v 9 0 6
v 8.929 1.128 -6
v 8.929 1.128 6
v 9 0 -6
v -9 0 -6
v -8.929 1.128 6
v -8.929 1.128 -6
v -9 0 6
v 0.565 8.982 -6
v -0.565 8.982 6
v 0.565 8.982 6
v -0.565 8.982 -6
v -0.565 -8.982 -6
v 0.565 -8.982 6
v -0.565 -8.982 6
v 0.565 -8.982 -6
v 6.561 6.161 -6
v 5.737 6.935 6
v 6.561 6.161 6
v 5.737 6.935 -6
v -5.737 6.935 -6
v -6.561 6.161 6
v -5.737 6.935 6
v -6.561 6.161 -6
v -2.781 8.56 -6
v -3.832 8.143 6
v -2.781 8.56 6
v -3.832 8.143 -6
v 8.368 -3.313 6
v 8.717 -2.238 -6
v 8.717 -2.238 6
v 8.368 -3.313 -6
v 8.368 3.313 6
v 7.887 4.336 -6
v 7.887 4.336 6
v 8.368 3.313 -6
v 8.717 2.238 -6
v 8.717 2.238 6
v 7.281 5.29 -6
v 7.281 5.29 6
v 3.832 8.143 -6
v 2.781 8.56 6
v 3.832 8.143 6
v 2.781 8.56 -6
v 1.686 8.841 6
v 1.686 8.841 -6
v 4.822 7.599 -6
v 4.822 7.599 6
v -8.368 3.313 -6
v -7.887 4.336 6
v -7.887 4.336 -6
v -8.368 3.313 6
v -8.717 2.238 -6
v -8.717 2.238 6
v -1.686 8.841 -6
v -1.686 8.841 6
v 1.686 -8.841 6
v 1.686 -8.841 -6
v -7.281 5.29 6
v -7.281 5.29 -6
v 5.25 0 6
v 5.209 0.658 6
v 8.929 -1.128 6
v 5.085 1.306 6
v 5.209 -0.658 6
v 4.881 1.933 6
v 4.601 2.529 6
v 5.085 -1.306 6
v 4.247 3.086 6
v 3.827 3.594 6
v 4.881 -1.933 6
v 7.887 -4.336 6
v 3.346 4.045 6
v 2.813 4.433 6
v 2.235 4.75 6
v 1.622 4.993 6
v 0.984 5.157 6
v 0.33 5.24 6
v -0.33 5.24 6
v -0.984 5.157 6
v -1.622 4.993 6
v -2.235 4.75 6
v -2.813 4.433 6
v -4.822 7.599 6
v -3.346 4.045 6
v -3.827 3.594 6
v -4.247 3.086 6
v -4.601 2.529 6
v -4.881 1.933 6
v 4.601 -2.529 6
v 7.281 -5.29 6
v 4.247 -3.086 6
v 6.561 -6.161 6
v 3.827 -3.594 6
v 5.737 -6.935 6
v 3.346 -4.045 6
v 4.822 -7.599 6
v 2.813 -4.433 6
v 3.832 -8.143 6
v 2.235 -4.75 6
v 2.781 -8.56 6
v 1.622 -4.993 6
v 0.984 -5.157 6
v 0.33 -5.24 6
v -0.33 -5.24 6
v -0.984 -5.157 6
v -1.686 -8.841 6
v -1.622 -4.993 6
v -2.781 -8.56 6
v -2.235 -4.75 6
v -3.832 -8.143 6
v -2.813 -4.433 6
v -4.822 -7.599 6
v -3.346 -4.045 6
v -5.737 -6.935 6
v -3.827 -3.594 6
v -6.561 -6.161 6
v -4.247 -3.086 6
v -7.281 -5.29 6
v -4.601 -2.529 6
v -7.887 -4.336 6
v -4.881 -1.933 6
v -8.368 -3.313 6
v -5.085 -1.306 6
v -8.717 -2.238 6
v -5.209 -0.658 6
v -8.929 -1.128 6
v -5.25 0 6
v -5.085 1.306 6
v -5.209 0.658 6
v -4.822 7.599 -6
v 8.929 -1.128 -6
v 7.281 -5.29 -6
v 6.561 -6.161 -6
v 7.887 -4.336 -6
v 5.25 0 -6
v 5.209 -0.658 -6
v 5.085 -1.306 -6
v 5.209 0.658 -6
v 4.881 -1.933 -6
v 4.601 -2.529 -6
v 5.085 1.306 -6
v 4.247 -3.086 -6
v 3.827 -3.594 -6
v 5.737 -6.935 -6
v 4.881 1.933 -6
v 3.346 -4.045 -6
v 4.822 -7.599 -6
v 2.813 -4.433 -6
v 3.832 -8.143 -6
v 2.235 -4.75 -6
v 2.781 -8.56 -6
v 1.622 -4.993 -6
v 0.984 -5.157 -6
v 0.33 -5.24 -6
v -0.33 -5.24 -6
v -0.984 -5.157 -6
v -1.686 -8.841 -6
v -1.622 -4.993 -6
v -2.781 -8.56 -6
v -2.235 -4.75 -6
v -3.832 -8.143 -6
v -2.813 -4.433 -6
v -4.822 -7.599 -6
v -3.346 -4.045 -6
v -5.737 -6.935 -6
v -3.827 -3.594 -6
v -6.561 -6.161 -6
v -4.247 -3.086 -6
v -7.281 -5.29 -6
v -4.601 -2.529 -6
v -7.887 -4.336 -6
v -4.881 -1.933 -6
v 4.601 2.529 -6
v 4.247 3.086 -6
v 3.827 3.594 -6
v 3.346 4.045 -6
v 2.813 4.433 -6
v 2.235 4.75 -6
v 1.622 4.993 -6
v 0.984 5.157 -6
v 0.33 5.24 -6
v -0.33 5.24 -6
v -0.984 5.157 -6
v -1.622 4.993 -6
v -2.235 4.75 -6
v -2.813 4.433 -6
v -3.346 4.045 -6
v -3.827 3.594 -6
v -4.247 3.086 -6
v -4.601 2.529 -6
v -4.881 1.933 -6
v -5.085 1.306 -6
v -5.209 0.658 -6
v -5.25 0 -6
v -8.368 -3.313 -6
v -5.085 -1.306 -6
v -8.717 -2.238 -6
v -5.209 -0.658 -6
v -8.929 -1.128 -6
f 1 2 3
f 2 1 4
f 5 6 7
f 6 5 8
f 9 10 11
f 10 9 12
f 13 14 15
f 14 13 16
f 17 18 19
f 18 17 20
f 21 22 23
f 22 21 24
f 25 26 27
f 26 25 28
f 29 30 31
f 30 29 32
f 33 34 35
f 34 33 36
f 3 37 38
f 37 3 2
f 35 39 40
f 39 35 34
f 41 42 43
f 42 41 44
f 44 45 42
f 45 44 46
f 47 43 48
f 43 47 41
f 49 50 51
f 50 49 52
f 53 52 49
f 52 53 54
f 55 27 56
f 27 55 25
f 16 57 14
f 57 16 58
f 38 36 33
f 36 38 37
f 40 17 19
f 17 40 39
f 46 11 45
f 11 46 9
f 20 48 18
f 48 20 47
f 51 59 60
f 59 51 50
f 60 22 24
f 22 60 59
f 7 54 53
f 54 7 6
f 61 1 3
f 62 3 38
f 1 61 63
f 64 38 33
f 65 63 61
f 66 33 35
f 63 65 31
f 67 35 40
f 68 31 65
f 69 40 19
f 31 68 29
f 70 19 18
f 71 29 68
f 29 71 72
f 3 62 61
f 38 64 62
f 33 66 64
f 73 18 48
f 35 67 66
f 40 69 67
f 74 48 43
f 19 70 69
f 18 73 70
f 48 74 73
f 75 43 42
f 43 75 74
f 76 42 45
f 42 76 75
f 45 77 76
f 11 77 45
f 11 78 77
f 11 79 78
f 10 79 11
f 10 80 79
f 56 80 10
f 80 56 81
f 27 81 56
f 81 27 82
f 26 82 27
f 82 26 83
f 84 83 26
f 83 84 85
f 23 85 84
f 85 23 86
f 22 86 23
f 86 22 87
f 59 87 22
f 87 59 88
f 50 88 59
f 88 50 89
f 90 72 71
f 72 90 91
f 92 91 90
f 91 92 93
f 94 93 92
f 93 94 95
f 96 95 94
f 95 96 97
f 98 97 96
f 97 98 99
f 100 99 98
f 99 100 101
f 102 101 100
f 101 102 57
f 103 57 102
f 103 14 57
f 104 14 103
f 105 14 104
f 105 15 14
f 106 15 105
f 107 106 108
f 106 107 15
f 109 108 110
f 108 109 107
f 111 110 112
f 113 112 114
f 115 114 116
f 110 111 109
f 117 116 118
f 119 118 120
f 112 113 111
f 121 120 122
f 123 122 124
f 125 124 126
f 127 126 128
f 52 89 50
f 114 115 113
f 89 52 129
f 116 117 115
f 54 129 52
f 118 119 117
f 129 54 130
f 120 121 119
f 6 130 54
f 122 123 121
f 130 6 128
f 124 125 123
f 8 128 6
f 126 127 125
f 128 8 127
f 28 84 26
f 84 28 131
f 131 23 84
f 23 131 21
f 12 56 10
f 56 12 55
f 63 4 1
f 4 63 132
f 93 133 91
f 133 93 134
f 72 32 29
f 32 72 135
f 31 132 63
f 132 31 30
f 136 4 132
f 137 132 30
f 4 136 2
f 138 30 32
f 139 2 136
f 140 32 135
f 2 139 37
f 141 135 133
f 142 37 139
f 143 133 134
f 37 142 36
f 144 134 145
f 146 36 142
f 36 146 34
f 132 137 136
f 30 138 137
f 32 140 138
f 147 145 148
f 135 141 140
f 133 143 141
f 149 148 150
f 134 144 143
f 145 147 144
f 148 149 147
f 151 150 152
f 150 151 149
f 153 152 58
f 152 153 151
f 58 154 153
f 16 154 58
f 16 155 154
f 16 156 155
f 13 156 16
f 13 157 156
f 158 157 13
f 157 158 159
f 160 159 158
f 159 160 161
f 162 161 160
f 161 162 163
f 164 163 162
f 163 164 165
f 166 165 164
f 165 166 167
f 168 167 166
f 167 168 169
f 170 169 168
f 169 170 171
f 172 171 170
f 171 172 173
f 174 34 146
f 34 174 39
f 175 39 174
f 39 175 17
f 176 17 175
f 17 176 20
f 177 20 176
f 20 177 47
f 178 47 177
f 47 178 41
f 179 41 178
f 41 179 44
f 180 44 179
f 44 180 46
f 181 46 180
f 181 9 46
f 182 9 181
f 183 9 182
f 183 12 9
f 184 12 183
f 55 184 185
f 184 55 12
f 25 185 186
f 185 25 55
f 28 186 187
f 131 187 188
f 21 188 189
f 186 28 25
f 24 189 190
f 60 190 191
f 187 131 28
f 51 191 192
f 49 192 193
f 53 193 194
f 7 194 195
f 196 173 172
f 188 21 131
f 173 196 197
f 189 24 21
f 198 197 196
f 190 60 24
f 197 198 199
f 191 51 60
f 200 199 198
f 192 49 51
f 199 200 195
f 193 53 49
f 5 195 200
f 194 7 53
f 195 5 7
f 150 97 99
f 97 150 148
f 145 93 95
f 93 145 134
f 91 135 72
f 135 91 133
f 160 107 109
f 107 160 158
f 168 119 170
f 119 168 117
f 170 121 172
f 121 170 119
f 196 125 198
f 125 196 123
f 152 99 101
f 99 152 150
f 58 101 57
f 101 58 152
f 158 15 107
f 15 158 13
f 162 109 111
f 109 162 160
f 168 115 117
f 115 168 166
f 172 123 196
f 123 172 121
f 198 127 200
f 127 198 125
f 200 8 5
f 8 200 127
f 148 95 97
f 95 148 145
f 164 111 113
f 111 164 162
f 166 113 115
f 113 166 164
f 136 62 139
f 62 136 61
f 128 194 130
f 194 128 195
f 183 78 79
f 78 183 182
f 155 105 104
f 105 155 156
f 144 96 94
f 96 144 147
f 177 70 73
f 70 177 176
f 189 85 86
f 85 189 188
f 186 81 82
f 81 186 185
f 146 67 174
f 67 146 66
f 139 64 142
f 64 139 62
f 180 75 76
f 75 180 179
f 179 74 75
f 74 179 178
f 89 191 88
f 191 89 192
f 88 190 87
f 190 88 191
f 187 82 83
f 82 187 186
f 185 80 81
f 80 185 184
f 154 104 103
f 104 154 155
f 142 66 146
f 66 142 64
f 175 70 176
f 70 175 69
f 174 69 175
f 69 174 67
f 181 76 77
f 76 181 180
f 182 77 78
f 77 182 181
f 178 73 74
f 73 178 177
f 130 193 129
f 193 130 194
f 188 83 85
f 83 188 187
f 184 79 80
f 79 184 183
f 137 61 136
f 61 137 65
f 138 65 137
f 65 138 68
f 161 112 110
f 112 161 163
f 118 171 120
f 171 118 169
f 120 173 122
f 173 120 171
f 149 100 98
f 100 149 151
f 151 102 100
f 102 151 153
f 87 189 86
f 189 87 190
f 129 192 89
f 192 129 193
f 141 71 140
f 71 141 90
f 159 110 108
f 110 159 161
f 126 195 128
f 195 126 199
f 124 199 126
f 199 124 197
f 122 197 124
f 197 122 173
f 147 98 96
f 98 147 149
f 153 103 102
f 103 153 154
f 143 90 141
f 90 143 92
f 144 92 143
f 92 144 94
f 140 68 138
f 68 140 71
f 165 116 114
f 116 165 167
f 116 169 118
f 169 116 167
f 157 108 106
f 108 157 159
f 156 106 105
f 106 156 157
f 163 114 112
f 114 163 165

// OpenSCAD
$fn = 50;


difference() {
	union() {
		translate(v = [0, 0, -6.0000000000]) {
			cylinder(h = 12, r = 9.0000000000);
		}
	}
	union() {
		translate(v = [0, 0, -100.0000000000]) {
			cylinder(h = 200, r = 5.2500000000);
		}
	}
}
